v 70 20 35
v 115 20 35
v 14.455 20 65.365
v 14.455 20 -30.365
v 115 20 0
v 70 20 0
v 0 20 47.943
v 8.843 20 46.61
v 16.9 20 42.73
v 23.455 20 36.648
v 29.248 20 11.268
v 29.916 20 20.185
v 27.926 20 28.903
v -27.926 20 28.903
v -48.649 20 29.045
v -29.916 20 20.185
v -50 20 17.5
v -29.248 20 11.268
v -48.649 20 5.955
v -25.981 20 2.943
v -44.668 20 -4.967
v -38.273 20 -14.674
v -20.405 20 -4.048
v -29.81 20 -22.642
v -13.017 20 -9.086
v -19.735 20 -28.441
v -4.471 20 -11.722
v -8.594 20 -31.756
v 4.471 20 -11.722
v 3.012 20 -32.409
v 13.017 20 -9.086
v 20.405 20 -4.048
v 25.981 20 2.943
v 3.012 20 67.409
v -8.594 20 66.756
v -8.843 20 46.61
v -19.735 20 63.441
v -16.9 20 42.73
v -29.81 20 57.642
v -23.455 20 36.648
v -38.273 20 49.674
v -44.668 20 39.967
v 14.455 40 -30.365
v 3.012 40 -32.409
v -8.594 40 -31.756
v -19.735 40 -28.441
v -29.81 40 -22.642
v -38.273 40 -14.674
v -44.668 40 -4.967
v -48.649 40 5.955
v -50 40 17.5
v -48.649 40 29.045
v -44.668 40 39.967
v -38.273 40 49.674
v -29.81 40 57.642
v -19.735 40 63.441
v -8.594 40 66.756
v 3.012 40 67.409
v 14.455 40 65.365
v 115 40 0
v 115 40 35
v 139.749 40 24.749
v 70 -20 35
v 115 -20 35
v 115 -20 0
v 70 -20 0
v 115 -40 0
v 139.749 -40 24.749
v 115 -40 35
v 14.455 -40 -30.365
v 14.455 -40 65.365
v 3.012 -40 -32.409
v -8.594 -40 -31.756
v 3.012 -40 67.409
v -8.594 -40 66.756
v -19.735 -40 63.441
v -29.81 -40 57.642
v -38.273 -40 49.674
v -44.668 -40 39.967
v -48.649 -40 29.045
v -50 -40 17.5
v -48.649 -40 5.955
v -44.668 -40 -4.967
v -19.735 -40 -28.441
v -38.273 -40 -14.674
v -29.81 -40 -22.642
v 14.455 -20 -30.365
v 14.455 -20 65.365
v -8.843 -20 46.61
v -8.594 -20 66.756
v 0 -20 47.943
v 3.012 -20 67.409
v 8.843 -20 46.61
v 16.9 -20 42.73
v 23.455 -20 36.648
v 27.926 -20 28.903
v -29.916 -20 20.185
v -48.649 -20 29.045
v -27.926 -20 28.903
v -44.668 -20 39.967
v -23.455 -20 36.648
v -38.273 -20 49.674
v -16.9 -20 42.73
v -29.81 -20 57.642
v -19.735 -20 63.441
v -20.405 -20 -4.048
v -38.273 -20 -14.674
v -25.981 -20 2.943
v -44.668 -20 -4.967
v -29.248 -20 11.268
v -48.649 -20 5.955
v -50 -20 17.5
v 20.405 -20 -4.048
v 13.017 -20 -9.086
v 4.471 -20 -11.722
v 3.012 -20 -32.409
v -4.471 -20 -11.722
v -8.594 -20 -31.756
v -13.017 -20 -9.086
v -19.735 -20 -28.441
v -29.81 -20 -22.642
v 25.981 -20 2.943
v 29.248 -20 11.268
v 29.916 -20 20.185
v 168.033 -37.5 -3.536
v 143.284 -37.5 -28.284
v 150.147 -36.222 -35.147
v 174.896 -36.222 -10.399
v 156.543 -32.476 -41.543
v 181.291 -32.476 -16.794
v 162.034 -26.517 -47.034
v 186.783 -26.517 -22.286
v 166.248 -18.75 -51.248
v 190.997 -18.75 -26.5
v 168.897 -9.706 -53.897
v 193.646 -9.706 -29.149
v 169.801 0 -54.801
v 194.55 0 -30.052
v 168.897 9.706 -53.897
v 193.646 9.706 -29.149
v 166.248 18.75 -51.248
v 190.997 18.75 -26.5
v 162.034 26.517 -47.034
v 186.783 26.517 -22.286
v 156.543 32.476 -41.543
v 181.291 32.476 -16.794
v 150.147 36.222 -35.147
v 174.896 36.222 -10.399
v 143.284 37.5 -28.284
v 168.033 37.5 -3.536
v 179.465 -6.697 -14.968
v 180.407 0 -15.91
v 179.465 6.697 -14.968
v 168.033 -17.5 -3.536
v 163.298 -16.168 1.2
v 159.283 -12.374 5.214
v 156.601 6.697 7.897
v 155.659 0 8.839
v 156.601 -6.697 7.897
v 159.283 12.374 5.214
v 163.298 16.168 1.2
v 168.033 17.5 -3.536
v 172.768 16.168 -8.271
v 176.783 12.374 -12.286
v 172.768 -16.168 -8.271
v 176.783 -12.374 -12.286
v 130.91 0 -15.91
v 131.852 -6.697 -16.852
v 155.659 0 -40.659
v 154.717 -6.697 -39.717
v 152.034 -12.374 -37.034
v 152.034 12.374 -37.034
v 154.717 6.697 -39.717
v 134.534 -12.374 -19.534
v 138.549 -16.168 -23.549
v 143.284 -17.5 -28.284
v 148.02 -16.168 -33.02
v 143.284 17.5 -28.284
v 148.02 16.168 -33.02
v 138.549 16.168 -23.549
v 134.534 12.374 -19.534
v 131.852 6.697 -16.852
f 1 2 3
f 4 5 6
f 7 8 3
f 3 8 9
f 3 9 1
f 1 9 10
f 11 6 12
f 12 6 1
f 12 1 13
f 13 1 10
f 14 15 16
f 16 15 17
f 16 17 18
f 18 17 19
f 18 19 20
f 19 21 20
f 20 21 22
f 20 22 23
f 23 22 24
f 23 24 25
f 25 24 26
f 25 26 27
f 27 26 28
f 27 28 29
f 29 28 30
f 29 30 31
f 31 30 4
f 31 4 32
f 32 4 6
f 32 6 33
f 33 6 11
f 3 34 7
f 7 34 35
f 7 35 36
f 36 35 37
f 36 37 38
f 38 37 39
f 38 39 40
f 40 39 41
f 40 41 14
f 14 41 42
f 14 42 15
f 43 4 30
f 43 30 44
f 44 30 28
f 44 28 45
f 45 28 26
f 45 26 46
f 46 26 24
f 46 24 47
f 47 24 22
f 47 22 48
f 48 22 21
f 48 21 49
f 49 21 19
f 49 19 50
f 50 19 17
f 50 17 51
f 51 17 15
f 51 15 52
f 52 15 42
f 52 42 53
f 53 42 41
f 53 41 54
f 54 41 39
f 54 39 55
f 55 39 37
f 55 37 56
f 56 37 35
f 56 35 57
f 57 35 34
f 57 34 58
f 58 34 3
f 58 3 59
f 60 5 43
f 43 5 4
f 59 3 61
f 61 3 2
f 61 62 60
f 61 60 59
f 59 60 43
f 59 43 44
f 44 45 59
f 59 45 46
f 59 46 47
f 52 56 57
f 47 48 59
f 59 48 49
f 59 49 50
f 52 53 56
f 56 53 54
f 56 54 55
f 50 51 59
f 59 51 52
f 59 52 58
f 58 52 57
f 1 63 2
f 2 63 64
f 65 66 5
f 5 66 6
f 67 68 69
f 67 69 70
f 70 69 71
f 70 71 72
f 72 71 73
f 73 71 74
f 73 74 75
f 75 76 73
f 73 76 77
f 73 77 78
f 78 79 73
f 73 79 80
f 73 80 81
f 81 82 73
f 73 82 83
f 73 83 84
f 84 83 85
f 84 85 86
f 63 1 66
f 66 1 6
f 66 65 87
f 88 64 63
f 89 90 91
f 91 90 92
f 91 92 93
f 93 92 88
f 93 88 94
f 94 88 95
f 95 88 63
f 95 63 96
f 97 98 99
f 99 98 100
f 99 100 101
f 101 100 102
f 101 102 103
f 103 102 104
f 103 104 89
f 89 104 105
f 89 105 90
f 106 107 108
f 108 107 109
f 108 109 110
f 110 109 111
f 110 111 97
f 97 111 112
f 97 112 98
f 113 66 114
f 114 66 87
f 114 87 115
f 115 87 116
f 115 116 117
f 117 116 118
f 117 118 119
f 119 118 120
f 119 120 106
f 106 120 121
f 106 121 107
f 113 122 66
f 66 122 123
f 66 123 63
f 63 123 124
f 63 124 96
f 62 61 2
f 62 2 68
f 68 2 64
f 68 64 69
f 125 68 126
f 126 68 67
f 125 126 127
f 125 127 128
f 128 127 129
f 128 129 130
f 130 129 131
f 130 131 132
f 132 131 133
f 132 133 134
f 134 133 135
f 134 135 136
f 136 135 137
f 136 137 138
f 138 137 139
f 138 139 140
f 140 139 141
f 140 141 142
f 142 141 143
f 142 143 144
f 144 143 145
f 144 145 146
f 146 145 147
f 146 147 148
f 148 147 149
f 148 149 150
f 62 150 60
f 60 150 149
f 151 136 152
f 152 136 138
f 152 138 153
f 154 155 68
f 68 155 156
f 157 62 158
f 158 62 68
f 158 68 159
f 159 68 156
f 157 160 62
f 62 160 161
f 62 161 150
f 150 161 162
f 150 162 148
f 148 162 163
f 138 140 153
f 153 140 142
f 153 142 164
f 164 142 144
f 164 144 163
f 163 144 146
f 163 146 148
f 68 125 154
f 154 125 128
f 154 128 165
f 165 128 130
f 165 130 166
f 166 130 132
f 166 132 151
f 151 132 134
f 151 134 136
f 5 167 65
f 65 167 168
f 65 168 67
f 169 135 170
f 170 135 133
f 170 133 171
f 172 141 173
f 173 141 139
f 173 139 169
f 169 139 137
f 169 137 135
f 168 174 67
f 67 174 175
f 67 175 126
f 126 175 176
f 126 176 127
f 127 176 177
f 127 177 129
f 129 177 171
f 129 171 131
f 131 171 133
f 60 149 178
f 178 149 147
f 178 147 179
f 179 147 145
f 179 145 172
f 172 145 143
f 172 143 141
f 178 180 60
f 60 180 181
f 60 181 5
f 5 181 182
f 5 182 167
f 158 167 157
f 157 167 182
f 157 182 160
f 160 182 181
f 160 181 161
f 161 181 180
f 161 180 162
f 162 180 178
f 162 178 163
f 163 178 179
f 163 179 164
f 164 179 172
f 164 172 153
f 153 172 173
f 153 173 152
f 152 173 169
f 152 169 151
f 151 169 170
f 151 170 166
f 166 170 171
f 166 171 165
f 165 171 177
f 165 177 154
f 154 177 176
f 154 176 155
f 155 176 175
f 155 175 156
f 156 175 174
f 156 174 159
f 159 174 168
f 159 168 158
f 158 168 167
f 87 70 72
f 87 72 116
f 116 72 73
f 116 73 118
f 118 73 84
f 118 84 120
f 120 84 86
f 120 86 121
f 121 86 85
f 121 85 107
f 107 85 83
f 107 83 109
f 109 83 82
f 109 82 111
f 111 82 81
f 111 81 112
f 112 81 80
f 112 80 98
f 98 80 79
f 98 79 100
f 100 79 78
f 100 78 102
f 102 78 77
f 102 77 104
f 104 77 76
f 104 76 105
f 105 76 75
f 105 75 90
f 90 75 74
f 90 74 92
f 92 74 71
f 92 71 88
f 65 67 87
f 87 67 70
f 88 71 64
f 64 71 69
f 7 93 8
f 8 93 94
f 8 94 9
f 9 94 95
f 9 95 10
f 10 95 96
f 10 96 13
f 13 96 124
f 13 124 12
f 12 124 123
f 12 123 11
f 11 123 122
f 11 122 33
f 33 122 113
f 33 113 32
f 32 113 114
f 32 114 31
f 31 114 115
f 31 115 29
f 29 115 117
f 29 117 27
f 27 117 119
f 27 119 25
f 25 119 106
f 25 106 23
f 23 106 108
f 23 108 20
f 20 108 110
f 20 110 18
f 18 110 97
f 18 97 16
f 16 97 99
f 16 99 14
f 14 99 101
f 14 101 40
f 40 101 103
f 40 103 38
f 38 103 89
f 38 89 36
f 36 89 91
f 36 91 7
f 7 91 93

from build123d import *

# Parameters (mm, degrees)
BOSS_EXTRUDE1_DEPTH             = 35
BOSS_EXTRUDE2_START             = -40
BOSS_EXTRUDE2_DEPTH             = 80
SKETCH7_R                       = 17.5
BOSS_EXTRUDE8_DEPTH             = 35
BOSS_EXTRUDE9_REACH             = 208.04
BOSS_EXTRUDE9_DIRECTION_2_REACH = 208.04
BOSS_EXTRUDE6_DEPTH             = 20
BOSS_EXTRUDE6_DEPTH_BACK        = 20
SKETCH5_R                       = 30
BOSS_EXTRUDE10_DEPTH            = 20


with BuildPart() as part:
    # Sketch1 → Boss-Extrude1 (new body)
    with BuildSketch(Plane.XY):
        Polygon((0, -20), (70, -20), (70, 20), (0, 20), (0, 40), (100, 40), (115, 40), (115, -40), (100, -40), (0, -40), align=None)
    extrude(amount=BOSS_EXTRUDE1_DEPTH)


with BuildPart() as body_2:
    # Sketch2 → Boss-Extrude2 (new body)
    with BuildSketch(Plane(origin=(0, 0, 0), x_dir=(1, 0, 0), z_dir=(0, 1, 0)).offset(BOSS_EXTRUDE2_START)):
        Polygon((115, -35), (115, 0), (143.284271247, 28.284271247), (160.784271247, 10.784271247), align=None)
    extrude(amount=BOSS_EXTRUDE2_DEPTH)


with BuildPart() as body_3:
    # Sketch7 → Boss-Extrude8 (new body)
    with BuildSketch(Plane(origin=(57.5, 0, 57.5), x_dir=(-0.7071067811865485, 0, 0.7071067811865466), z_dir=(-0.7071067811865466, 0, -0.7071067811865485))):
        with BuildLine():
            Line((-121.317279836, 37.5), (-81.317279836, 40))
            Line((-81.317279836, 40), (-81.317279836, -40))
            Line((-81.317279836, -40), (-121.317279836, -37.5))
            ThreePointArc((-121.317279836, -37.5), (-158.817279836, 0), (-121.317279836, 37.5))
        make_face()
        with Locations((-121.317279836, 0)):
            Circle(SKETCH7_R, mode=Mode.SUBTRACT)
    extrude(amount=-BOSS_EXTRUDE8_DEPTH)


with BuildPart() as body_4:

    # Boss-Extrude9: up to this face of the body (flat: up to its plane)
    boss_extrude9_end = Plane(part.part.faces().sort_by_distance((57.5, 40, 17.5))[0])
    # Sketch9 → Boss-Extrude9 (new, up to the picked face)
    with BuildSketch(Plane(origin=(0, 0, 0), x_dir=(1, 0, 0), z_dir=(0, 1, 0)), mode=Mode.PRIVATE) as boss_extrude9_sk1:
        Polygon((139.748737342, -24.748737342), (115, 0), (115, -35), align=None)
    boss_extrude9_tool1 = split(extrude(boss_extrude9_sk1.sketch, amount=BOSS_EXTRUDE9_REACH, mode=Mode.PRIVATE), bisect_by=boss_extrude9_end, keep=Keep.BOTH, mode=Mode.PRIVATE)
    add(boss_extrude9_tool1.solids().sort_by(Axis((123.249579, 0, 19.916246), (0, 1, 0)))[0])


    # Boss-Extrude9 direction 2: up to this face of the body (flat: up to its plane)
    boss_extrude9_direction_2_end = Plane(part.part.faces().sort_by_distance((57.5, -40, 17.5))[0])
    # Sketch9 → Boss-Extrude9 direction 2 (add, up to the picked face)
    with BuildSketch(Plane(origin=(0, 0, 0), x_dir=(1, 0, 0), z_dir=(0, 1, 0)), mode=Mode.PRIVATE) as boss_extrude9_direction_2_sk1:
        Polygon((139.748737342, -24.748737342), (115, 0), (115, -35), align=None)
    boss_extrude9_direction_2_tool1 = split(extrude(boss_extrude9_direction_2_sk1.sketch, amount=-BOSS_EXTRUDE9_DIRECTION_2_REACH, mode=Mode.PRIVATE), bisect_by=boss_extrude9_direction_2_end, keep=Keep.BOTH, mode=Mode.PRIVATE)
    add(boss_extrude9_direction_2_tool1.solids().sort_by(Axis((123.249579, 0, 19.916246), (0, -1, 0)))[0])


with BuildPart() as body_4_2:
    # Sketch5 → Boss-Extrude6 (new, two sides: drawn at the far end of the back side and taken through both)
    with BuildSketch(Plane(origin=(0, 0, 0), x_dir=(1, 0, 0), z_dir=(0, 1, 0)).offset(-BOSS_EXTRUDE6_DEPTH_BACK)):
        with Locations(Location((0, -17.943234711, 0), (0, 0, 270))):
            Circle(SKETCH5_R)
    extrude(amount=BOSS_EXTRUDE6_DEPTH + BOSS_EXTRUDE6_DEPTH_BACK)


with BuildPart() as body_5:
    # Sketch6 → Boss-Extrude10 (new body)
    with BuildSketch(Plane(origin=(0, 20, 0), x_dir=(1, 0, 0), z_dir=(0, 1, 0))):
        with BuildLine():
            Line((115, -35), (46.837484988, -35))
            ThreePointArc((46.837484988, -35), (50, -17.5), (46.837484988, 0))
            Line((46.837484988, 0), (115, 0))
            Line((115, 0), (14.455350542, 30.364839295))
            ThreePointArc((14.455350542, 30.364839295), (-50, -17.5), (14.455350542, -65.364839295))
            Line((14.455350542, -65.364839295), (115, -35))
        make_face()
    extrude(amount=BOSS_EXTRUDE10_DEPTH)


with BuildPart() as body_6:
    # Body-Move/Copy2: copy of body 5
    add(body_5.part.moved(Location((0, -60, 0))))


with BuildPart() as body_5_1:
    add(body_5.part)

    # Combine1: union part, body 4, body 3, body 6, body 4 2
    add(part.part)
    add(body_4.part)
    add(body_3.part)
    add(body_6.part)
    add(body_4_2.part)


solid = body_5_1.part
